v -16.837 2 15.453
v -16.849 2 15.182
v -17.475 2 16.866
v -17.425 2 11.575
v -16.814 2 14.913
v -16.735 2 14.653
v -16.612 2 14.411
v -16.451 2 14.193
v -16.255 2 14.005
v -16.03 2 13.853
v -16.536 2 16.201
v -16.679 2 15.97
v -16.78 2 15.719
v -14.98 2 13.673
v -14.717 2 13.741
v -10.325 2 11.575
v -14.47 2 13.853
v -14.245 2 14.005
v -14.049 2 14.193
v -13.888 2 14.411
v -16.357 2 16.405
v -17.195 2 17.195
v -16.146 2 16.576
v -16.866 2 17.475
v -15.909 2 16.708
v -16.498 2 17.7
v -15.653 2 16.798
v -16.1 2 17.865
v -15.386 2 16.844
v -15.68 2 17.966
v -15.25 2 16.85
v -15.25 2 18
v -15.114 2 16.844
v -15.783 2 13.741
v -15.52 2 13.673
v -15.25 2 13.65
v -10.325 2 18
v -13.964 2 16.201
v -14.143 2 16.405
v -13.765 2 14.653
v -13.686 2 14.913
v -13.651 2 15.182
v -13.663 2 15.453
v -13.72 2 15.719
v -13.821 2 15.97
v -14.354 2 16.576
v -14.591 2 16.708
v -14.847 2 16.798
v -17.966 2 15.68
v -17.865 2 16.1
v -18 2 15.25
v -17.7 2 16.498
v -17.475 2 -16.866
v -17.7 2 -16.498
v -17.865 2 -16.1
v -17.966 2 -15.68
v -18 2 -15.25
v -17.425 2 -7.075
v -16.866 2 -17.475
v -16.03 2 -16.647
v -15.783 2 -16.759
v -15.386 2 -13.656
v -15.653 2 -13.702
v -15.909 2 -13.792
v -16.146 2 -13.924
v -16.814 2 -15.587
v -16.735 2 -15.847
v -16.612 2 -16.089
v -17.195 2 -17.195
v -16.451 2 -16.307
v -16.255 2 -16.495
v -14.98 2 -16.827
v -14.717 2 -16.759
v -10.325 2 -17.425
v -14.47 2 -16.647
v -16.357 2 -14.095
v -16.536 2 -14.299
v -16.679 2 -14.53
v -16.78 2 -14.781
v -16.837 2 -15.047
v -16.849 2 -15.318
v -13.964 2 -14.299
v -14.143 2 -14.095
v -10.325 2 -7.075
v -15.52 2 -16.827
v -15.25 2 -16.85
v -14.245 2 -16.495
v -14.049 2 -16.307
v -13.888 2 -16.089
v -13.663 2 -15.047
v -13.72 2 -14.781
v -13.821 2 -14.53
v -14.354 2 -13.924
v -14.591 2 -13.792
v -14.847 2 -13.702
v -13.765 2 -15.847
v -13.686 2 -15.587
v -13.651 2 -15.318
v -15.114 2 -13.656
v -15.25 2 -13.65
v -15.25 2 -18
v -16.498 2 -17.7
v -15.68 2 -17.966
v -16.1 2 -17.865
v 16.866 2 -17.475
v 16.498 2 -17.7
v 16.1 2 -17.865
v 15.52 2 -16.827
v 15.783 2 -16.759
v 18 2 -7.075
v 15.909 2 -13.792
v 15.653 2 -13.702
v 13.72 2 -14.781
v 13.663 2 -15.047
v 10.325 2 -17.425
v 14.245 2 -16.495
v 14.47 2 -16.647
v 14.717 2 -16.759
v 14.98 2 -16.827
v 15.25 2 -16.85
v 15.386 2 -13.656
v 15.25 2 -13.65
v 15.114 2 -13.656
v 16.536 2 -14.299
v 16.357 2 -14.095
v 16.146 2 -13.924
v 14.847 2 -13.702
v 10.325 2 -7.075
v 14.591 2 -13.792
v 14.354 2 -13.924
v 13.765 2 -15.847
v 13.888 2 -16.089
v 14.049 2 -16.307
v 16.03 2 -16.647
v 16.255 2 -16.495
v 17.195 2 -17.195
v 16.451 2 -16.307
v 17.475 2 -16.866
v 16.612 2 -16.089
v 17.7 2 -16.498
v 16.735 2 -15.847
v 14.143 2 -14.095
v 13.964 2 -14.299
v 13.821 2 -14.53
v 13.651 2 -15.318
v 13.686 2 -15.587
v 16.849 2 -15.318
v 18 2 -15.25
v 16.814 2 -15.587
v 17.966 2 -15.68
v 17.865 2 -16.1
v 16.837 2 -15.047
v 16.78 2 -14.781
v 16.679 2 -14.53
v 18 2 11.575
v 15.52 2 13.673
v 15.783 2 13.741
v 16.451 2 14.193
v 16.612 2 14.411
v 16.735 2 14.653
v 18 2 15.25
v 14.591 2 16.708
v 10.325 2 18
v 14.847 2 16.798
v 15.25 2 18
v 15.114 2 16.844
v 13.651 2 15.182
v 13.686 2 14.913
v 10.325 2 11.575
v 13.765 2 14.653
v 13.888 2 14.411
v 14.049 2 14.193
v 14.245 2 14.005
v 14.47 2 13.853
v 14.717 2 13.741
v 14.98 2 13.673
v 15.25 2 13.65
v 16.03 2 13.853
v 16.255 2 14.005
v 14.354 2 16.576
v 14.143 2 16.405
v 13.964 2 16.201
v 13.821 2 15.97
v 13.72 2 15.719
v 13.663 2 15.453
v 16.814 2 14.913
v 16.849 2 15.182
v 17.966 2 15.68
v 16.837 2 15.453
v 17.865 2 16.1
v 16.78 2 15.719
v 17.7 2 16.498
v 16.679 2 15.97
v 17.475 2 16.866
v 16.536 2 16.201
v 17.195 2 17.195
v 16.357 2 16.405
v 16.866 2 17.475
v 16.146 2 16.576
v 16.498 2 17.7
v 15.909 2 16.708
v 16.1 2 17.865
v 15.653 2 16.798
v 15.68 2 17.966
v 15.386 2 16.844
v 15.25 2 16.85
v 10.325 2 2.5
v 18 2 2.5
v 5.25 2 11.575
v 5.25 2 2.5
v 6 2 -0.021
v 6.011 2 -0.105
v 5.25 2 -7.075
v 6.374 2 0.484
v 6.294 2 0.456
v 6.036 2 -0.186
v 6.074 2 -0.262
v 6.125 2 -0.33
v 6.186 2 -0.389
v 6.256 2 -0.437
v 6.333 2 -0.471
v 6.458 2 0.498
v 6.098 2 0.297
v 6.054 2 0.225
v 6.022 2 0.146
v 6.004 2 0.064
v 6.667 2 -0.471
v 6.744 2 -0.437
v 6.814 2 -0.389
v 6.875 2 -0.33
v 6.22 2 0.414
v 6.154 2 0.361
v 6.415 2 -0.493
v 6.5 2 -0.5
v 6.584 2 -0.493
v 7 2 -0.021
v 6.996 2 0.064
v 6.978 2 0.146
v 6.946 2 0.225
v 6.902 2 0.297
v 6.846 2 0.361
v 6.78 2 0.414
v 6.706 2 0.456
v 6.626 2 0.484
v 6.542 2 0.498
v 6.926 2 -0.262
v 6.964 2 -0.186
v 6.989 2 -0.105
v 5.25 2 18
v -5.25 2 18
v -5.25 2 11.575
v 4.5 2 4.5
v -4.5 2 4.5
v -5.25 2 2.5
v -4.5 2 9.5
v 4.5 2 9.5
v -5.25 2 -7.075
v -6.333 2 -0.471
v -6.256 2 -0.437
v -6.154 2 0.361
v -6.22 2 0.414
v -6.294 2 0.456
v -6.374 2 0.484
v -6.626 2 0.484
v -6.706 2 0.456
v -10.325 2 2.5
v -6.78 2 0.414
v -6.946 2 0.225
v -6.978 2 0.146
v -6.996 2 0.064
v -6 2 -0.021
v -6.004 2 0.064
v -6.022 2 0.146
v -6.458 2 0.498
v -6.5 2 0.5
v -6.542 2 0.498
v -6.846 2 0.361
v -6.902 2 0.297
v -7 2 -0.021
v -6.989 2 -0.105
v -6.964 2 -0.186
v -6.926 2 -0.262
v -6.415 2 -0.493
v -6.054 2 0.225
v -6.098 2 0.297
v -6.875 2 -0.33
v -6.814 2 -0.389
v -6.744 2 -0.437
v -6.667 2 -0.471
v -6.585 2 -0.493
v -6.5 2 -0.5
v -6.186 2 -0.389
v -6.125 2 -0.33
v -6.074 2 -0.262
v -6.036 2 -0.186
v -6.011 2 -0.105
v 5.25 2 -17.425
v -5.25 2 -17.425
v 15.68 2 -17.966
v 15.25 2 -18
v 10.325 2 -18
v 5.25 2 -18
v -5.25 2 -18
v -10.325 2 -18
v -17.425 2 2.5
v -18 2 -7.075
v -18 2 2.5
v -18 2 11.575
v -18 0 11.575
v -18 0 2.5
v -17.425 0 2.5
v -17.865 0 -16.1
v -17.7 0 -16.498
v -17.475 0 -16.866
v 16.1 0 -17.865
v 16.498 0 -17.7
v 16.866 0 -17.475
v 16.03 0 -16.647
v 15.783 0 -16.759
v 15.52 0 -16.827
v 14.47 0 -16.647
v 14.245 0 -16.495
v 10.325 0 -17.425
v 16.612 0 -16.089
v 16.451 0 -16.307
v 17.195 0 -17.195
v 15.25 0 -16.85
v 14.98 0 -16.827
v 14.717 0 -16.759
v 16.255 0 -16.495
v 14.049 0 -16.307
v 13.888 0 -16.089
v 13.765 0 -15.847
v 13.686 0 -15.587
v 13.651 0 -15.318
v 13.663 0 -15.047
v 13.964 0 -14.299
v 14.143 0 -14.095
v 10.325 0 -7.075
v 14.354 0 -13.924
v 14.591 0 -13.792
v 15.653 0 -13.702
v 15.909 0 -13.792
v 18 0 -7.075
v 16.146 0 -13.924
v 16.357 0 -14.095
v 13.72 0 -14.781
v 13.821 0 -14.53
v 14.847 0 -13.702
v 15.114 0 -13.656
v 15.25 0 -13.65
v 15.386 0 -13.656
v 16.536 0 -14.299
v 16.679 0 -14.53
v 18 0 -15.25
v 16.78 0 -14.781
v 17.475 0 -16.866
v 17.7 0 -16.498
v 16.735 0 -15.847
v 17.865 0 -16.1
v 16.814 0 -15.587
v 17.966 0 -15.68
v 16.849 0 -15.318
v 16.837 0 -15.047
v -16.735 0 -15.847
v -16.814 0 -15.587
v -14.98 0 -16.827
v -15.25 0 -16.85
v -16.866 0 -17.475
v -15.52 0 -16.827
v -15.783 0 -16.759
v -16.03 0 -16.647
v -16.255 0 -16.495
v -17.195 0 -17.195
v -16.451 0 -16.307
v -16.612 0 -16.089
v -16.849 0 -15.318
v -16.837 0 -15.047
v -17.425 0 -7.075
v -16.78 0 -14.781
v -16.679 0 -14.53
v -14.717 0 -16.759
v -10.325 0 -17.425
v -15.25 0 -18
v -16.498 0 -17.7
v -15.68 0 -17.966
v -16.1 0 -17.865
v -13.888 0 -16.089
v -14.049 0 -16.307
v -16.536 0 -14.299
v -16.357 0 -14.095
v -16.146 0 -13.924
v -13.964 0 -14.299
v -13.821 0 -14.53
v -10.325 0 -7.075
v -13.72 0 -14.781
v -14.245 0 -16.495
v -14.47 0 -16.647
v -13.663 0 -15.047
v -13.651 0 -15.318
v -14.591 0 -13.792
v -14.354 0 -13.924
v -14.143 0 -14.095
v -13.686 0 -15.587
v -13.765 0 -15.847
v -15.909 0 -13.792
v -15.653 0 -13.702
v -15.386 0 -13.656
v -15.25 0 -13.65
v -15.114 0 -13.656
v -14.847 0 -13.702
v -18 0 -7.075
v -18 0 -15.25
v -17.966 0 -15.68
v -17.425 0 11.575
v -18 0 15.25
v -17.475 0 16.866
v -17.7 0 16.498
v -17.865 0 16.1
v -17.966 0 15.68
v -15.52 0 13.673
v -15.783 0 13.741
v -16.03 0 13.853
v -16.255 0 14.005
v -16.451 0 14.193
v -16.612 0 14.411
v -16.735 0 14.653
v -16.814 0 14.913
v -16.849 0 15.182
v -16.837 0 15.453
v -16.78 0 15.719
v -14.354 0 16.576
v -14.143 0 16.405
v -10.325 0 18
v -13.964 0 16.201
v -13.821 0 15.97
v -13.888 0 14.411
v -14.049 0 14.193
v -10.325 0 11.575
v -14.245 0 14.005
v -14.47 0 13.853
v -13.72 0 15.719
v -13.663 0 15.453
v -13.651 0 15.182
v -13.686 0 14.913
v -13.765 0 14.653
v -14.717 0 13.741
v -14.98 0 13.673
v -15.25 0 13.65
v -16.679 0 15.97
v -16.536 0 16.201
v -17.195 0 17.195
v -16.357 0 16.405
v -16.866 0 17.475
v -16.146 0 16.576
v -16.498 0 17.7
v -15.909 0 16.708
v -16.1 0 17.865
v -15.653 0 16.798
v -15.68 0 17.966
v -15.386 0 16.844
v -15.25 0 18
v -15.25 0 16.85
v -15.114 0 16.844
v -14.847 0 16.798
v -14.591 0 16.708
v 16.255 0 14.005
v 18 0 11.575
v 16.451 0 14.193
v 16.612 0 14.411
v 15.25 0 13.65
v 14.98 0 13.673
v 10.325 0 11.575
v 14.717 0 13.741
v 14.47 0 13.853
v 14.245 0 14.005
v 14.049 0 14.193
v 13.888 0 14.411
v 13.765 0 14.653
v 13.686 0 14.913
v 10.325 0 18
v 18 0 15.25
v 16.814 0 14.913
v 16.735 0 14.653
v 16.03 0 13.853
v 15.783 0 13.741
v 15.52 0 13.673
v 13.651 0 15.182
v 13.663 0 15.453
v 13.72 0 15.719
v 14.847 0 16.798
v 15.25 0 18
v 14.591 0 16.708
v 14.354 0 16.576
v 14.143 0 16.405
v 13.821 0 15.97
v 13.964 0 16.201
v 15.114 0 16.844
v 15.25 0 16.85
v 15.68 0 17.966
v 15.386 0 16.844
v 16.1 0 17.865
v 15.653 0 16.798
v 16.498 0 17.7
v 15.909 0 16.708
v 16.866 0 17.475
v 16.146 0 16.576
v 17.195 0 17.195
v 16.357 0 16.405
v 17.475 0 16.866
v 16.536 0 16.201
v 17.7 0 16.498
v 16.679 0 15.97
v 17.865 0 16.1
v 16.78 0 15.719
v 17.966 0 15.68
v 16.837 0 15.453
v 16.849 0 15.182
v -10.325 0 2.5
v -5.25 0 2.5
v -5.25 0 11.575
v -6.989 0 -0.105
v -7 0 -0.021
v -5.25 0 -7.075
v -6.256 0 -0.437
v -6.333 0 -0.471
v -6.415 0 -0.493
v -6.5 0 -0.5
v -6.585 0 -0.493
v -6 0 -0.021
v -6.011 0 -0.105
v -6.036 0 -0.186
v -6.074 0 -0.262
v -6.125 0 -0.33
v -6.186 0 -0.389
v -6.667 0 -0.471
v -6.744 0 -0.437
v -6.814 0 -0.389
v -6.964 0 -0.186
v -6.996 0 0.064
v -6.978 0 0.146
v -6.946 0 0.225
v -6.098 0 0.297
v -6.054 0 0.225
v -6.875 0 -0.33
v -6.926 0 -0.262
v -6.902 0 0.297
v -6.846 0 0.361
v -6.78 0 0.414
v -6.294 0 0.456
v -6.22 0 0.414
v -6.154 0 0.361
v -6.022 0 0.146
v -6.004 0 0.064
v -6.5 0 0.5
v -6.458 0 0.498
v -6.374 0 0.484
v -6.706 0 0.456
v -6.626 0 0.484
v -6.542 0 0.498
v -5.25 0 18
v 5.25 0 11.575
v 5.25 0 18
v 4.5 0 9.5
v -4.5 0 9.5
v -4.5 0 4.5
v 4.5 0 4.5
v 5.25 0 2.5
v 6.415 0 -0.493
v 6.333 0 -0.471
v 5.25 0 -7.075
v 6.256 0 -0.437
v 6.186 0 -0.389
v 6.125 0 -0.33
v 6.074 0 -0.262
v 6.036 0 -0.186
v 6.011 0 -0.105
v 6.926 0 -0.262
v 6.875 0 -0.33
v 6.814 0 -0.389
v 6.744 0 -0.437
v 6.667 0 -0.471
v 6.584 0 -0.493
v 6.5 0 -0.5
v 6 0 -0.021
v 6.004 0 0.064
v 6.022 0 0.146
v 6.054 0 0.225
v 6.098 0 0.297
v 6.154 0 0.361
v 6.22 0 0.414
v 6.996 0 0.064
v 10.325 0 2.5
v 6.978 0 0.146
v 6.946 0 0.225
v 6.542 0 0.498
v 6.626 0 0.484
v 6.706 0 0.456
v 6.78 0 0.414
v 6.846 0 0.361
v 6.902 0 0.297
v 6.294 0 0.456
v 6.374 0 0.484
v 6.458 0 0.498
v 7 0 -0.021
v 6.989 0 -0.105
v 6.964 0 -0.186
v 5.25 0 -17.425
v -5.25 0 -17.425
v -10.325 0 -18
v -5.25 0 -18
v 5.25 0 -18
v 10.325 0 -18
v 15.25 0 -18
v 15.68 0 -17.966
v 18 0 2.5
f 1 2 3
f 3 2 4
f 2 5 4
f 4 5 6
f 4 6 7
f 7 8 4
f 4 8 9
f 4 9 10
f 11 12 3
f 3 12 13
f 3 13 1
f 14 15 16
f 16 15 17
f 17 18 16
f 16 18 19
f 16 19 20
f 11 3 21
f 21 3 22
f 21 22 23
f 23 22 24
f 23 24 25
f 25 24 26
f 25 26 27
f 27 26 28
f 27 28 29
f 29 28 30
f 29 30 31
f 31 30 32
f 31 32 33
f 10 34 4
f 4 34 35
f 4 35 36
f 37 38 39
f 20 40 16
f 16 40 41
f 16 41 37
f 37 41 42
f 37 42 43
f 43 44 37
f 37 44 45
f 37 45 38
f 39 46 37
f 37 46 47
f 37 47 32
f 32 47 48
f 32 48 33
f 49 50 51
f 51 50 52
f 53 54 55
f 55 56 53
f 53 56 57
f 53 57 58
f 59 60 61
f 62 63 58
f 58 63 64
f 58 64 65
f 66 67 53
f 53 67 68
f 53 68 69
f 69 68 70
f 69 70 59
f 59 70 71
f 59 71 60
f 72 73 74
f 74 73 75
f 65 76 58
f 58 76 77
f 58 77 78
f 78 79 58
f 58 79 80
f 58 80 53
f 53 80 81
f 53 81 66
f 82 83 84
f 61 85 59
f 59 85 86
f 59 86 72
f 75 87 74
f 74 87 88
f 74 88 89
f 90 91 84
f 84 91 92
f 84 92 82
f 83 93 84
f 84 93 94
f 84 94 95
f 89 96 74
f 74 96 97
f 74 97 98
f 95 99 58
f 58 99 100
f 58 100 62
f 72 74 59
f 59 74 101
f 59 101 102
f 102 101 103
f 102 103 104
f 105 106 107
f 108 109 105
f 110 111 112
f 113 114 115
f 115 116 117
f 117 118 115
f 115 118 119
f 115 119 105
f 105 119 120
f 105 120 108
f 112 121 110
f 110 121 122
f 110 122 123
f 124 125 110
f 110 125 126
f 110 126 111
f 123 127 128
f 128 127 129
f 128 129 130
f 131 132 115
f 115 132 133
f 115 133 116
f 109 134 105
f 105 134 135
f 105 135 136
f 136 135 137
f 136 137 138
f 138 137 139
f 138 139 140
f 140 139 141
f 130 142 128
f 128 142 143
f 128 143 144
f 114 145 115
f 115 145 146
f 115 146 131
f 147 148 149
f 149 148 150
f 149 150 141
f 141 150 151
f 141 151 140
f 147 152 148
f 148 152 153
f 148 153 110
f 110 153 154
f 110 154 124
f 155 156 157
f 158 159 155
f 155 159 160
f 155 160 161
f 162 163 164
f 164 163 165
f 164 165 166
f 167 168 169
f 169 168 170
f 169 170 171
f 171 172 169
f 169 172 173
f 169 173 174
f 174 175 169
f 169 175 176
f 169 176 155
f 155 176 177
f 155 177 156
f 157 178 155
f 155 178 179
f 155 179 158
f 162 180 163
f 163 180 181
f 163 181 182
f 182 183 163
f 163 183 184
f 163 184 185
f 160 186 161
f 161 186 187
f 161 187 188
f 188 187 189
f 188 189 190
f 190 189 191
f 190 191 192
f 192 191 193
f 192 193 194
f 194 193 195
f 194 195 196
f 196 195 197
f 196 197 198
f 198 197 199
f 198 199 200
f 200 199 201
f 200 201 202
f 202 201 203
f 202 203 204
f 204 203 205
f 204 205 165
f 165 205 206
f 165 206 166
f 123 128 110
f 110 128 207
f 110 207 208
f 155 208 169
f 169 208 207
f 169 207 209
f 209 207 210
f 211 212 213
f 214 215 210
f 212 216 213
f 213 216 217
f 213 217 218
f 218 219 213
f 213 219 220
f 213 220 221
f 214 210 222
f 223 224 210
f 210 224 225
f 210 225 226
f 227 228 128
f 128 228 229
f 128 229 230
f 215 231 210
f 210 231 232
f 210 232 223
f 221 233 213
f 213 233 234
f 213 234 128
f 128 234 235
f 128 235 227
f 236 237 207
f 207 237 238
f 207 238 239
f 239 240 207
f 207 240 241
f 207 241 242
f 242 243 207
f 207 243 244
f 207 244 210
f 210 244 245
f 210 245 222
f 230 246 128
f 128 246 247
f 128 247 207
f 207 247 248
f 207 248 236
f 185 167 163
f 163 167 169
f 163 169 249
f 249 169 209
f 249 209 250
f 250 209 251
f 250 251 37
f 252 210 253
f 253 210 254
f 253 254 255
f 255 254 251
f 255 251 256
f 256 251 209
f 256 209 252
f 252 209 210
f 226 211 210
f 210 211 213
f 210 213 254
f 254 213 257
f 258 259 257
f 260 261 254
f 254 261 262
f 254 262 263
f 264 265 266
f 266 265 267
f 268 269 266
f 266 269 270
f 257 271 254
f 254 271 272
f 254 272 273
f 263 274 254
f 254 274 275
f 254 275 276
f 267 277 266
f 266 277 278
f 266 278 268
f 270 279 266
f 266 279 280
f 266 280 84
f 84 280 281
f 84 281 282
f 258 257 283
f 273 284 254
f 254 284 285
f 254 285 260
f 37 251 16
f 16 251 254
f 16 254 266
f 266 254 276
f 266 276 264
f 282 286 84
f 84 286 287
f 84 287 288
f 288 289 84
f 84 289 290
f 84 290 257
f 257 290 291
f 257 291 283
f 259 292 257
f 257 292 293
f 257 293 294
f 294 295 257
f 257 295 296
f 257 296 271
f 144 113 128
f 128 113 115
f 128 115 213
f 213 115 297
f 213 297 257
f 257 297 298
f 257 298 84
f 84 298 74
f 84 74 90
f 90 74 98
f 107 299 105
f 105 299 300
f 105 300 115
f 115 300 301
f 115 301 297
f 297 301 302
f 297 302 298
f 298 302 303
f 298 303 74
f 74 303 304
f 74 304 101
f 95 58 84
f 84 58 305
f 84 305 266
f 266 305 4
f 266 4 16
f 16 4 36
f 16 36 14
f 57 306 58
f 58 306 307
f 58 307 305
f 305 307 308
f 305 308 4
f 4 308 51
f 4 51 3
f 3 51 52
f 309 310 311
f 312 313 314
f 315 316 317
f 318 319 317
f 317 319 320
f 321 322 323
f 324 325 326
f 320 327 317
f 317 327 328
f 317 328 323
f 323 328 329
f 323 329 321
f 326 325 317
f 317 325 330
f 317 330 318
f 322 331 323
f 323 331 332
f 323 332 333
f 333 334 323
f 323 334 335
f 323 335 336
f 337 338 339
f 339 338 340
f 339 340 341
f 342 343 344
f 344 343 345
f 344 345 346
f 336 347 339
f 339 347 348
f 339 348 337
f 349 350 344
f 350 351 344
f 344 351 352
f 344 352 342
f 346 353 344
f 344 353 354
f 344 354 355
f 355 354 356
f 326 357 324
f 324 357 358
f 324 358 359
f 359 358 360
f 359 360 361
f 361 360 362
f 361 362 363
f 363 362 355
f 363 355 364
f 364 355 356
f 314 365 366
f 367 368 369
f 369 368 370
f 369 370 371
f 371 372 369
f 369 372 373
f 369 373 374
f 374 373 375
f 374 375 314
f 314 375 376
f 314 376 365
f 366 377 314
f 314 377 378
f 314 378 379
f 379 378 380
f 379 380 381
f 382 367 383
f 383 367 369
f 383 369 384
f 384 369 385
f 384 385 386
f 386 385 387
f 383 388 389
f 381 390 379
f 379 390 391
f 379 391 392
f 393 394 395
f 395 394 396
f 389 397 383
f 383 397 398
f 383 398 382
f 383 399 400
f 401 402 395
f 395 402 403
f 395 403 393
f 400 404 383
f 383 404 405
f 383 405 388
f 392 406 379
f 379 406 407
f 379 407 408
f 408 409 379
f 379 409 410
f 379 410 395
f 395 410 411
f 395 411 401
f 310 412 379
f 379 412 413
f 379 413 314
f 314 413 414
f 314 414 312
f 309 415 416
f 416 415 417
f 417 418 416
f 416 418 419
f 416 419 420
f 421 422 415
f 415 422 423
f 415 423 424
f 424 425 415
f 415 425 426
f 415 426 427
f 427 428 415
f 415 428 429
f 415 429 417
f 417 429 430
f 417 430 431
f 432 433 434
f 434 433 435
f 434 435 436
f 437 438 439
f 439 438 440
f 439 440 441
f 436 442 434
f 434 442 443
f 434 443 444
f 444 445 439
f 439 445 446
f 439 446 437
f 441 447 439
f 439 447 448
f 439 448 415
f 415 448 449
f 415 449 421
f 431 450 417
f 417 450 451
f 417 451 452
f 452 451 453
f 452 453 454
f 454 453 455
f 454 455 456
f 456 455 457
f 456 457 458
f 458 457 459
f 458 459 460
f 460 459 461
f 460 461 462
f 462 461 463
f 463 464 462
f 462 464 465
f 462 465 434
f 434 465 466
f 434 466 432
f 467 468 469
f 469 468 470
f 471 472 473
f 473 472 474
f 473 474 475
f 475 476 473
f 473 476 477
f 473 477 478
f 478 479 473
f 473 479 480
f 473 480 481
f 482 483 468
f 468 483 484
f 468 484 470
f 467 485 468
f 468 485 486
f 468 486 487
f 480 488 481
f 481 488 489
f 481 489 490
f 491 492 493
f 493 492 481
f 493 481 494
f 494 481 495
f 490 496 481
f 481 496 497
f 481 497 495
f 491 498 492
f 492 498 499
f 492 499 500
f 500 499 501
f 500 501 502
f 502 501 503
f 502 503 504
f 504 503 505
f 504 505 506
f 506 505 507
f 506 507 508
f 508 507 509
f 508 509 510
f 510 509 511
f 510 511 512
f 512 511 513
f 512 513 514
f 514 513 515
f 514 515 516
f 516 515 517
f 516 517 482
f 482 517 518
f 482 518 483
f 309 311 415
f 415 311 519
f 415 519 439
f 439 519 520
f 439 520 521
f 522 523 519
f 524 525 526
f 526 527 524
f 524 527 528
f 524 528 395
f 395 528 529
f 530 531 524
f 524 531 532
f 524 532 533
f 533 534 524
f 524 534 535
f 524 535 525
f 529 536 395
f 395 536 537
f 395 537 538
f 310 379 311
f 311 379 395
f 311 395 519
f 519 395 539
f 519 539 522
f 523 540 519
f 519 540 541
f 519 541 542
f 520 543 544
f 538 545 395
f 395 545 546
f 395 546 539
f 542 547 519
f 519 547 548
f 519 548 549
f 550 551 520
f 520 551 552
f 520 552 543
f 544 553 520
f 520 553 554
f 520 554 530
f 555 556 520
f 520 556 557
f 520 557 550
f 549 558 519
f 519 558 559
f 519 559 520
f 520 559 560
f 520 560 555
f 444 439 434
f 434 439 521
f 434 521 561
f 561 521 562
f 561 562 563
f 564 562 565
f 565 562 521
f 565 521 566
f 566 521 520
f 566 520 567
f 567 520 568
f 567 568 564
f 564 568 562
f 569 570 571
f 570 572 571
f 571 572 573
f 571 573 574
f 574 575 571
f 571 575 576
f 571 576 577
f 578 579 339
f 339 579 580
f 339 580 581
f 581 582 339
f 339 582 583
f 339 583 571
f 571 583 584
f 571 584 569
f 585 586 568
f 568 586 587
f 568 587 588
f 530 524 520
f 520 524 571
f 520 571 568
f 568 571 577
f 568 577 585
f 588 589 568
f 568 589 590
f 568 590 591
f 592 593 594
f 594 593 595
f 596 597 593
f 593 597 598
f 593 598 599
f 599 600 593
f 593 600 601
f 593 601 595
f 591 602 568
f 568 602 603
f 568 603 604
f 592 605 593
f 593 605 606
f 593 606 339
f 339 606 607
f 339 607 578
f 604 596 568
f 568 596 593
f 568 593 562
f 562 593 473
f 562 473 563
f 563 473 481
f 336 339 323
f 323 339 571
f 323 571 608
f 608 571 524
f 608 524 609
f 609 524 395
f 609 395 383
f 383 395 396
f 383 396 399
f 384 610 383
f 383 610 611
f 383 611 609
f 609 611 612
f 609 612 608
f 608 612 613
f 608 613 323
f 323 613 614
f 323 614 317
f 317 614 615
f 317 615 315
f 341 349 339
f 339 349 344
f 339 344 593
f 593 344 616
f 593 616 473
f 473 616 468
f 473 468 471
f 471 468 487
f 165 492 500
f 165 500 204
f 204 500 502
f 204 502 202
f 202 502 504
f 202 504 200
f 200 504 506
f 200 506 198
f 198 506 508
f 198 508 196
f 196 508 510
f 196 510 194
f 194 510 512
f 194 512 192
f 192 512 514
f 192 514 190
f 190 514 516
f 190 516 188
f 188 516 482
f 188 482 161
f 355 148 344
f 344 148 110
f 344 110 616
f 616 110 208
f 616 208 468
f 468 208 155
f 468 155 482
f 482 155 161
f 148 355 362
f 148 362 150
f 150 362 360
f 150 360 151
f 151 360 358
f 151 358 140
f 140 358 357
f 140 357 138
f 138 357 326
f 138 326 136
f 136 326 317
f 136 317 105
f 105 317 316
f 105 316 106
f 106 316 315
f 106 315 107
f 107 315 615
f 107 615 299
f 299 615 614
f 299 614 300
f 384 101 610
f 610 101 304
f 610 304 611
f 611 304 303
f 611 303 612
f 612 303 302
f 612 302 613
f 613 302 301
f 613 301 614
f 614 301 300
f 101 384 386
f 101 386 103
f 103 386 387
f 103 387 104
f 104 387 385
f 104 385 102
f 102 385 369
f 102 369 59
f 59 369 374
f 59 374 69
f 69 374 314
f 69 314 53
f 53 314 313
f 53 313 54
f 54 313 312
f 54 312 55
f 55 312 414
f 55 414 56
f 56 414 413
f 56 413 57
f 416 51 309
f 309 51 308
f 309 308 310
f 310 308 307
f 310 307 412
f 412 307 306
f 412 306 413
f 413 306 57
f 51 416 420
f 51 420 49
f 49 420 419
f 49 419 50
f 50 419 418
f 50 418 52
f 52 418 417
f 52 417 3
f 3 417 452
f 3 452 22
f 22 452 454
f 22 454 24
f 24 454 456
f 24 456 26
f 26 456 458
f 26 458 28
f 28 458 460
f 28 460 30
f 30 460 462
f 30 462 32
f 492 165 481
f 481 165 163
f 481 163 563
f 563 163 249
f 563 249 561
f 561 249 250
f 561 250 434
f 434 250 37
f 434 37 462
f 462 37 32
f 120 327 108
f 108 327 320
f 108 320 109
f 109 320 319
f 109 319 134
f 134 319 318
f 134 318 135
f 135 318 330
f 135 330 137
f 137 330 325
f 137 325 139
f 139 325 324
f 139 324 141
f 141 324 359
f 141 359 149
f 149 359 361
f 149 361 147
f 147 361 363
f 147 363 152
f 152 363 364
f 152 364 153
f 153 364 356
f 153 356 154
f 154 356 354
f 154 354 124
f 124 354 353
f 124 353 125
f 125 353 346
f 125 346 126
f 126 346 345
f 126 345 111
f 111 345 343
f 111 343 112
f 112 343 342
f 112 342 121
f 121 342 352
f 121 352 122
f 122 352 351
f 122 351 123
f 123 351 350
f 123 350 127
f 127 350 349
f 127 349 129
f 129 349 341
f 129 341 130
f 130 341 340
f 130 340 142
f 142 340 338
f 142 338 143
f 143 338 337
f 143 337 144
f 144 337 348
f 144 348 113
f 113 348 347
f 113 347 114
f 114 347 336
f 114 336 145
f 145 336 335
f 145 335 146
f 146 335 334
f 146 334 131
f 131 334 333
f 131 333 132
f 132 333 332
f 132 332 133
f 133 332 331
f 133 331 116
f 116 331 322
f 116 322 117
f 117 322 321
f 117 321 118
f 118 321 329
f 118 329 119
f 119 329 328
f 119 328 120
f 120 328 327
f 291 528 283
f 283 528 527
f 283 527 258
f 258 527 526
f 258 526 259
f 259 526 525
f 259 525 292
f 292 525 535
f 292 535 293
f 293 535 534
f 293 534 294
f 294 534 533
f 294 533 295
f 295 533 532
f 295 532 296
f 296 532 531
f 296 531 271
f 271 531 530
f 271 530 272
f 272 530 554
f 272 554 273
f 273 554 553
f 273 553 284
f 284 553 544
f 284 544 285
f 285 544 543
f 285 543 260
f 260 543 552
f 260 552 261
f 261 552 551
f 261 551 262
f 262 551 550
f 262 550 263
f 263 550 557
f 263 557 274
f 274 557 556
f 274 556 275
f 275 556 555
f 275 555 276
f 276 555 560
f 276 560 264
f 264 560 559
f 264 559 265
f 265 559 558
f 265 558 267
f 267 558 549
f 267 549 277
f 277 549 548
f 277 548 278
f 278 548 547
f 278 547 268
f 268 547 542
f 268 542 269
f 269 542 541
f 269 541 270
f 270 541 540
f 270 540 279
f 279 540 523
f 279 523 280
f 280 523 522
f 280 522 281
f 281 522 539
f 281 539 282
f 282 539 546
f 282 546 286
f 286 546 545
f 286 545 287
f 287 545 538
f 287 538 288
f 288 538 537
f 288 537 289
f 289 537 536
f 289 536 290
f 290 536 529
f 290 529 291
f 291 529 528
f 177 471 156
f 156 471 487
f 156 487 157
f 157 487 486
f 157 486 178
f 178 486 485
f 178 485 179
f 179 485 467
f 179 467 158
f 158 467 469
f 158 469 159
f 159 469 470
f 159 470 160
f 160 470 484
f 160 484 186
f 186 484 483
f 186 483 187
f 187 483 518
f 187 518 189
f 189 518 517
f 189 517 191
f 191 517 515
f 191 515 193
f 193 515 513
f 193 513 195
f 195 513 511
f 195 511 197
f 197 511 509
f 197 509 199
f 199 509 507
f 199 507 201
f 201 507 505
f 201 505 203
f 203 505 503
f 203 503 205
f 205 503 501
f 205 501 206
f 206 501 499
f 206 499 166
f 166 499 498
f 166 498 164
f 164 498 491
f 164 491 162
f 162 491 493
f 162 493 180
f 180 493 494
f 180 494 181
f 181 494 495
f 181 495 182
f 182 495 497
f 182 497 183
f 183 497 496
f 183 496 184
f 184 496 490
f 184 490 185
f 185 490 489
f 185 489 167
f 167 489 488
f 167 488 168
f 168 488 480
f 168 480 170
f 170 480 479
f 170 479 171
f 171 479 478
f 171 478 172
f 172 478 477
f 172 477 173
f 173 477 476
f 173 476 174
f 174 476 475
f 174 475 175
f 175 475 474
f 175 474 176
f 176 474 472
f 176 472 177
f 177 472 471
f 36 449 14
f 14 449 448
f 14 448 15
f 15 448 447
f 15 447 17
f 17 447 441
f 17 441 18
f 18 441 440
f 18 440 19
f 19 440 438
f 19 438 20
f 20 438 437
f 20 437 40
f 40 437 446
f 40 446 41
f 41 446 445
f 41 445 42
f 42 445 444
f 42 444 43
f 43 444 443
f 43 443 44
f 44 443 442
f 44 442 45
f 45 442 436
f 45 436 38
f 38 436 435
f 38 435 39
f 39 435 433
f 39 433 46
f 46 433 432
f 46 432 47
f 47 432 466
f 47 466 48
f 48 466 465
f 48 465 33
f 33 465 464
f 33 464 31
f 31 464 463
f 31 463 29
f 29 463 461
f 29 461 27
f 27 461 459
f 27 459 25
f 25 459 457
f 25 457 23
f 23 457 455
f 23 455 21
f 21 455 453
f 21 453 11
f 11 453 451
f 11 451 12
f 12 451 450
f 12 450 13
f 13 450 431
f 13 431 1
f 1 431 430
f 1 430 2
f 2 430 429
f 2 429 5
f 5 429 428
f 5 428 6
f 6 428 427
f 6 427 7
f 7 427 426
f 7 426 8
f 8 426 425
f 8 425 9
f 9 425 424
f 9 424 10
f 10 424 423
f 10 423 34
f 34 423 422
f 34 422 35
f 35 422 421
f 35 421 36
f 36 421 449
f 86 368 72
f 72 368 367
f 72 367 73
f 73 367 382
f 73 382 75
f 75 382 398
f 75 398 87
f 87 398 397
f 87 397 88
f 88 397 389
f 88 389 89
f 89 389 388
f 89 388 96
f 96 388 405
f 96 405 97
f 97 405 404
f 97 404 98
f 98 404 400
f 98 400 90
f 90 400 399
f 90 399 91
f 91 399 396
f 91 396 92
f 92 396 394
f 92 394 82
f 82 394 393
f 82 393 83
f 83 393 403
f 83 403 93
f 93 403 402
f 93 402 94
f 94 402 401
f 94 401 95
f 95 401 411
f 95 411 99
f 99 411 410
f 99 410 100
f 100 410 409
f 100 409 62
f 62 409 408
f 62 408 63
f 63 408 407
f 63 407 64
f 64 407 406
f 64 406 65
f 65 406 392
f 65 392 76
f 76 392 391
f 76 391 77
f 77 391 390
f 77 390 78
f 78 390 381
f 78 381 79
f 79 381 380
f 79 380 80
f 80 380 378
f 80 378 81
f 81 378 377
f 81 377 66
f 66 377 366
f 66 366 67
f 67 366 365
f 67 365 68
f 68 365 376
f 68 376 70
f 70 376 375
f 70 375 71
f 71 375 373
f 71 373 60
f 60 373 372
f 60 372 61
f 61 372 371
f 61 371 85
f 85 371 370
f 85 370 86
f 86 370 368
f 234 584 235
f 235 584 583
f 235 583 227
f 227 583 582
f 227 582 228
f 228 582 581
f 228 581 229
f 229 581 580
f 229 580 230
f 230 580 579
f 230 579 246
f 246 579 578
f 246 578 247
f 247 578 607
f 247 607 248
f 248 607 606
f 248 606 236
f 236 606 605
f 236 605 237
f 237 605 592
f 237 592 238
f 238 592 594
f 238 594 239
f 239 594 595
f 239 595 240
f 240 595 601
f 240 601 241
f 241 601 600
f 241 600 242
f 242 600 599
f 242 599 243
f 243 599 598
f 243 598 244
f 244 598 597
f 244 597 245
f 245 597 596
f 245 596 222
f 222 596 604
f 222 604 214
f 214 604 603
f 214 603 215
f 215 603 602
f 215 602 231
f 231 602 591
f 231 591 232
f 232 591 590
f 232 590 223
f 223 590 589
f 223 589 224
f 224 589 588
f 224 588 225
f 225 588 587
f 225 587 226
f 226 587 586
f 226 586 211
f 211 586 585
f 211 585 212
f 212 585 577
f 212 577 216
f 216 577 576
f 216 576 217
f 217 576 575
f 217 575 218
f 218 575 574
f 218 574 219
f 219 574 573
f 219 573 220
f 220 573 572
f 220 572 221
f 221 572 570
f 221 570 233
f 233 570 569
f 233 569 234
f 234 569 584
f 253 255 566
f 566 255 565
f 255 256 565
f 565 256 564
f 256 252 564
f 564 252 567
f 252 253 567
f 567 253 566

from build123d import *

# Parameters (mm, degrees)
SKETCH_1_R      = 1.6
SKETCH_1_R_2    = 0.5
SKETCH_1_W      = 9
SKETCH_1_H      = 5
EXTRUDE_1_DEPTH = 2


with BuildPart() as part:
    # 草图1 → 凸台-拉伸1 (new body)
    with BuildSketch(Plane(origin=(0, 0, 0), x_dir=(1, 0, 0), z_dir=(0, 1, 0))):
        with BuildLine():
            Line((-15.25, -18), (15.25, -18))
            ThreePointArc((15.25, -18), (17.194543648, -17.194543648), (18, -15.25))
            Line((18, -15.25), (18, 15.25))
            ThreePointArc((18, 15.25), (17.194543648, 17.194543648), (15.25, 18))
            Line((15.25, 18), (-15.25, 18))
            ThreePointArc((-15.25, 18), (-17.194543648, 17.194543648), (-18, 15.25))
            Line((-18, 15.25), (-18, -15.25))
            ThreePointArc((-18, -15.25), (-17.194543648, -17.194543648), (-15.25, -18))
        make_face()
        with Locations(Location((15.25, 15.25, 0), (0, 0, 270))):
            Circle(SKETCH_1_R, mode=Mode.SUBTRACT)
        with Locations(Location((15.25, -15.25, 0), (0, 0, 270))):
            Circle(SKETCH_1_R, mode=Mode.SUBTRACT)
        with Locations(Location((-15.25, -15.25, 0), (0, 0, 270))):
            Circle(SKETCH_1_R, mode=Mode.SUBTRACT)
        with Locations(Location((-15.25, 15.25, 0), (0, 0, 270))):
            Circle(SKETCH_1_R, mode=Mode.SUBTRACT)
        with Locations(Location((-6.5, 0, 0), (0, 0, 270))):
            Circle(SKETCH_1_R_2, mode=Mode.SUBTRACT)
        with Locations(Location((6.5, 0, 0), (0, 0, 90))):
            Circle(SKETCH_1_R_2, mode=Mode.SUBTRACT)
        with Locations((0, -7)):
            Rectangle(SKETCH_1_W, SKETCH_1_H, mode=Mode.SUBTRACT)
    extrude(amount=EXTRUDE_1_DEPTH)


solid = part.part
